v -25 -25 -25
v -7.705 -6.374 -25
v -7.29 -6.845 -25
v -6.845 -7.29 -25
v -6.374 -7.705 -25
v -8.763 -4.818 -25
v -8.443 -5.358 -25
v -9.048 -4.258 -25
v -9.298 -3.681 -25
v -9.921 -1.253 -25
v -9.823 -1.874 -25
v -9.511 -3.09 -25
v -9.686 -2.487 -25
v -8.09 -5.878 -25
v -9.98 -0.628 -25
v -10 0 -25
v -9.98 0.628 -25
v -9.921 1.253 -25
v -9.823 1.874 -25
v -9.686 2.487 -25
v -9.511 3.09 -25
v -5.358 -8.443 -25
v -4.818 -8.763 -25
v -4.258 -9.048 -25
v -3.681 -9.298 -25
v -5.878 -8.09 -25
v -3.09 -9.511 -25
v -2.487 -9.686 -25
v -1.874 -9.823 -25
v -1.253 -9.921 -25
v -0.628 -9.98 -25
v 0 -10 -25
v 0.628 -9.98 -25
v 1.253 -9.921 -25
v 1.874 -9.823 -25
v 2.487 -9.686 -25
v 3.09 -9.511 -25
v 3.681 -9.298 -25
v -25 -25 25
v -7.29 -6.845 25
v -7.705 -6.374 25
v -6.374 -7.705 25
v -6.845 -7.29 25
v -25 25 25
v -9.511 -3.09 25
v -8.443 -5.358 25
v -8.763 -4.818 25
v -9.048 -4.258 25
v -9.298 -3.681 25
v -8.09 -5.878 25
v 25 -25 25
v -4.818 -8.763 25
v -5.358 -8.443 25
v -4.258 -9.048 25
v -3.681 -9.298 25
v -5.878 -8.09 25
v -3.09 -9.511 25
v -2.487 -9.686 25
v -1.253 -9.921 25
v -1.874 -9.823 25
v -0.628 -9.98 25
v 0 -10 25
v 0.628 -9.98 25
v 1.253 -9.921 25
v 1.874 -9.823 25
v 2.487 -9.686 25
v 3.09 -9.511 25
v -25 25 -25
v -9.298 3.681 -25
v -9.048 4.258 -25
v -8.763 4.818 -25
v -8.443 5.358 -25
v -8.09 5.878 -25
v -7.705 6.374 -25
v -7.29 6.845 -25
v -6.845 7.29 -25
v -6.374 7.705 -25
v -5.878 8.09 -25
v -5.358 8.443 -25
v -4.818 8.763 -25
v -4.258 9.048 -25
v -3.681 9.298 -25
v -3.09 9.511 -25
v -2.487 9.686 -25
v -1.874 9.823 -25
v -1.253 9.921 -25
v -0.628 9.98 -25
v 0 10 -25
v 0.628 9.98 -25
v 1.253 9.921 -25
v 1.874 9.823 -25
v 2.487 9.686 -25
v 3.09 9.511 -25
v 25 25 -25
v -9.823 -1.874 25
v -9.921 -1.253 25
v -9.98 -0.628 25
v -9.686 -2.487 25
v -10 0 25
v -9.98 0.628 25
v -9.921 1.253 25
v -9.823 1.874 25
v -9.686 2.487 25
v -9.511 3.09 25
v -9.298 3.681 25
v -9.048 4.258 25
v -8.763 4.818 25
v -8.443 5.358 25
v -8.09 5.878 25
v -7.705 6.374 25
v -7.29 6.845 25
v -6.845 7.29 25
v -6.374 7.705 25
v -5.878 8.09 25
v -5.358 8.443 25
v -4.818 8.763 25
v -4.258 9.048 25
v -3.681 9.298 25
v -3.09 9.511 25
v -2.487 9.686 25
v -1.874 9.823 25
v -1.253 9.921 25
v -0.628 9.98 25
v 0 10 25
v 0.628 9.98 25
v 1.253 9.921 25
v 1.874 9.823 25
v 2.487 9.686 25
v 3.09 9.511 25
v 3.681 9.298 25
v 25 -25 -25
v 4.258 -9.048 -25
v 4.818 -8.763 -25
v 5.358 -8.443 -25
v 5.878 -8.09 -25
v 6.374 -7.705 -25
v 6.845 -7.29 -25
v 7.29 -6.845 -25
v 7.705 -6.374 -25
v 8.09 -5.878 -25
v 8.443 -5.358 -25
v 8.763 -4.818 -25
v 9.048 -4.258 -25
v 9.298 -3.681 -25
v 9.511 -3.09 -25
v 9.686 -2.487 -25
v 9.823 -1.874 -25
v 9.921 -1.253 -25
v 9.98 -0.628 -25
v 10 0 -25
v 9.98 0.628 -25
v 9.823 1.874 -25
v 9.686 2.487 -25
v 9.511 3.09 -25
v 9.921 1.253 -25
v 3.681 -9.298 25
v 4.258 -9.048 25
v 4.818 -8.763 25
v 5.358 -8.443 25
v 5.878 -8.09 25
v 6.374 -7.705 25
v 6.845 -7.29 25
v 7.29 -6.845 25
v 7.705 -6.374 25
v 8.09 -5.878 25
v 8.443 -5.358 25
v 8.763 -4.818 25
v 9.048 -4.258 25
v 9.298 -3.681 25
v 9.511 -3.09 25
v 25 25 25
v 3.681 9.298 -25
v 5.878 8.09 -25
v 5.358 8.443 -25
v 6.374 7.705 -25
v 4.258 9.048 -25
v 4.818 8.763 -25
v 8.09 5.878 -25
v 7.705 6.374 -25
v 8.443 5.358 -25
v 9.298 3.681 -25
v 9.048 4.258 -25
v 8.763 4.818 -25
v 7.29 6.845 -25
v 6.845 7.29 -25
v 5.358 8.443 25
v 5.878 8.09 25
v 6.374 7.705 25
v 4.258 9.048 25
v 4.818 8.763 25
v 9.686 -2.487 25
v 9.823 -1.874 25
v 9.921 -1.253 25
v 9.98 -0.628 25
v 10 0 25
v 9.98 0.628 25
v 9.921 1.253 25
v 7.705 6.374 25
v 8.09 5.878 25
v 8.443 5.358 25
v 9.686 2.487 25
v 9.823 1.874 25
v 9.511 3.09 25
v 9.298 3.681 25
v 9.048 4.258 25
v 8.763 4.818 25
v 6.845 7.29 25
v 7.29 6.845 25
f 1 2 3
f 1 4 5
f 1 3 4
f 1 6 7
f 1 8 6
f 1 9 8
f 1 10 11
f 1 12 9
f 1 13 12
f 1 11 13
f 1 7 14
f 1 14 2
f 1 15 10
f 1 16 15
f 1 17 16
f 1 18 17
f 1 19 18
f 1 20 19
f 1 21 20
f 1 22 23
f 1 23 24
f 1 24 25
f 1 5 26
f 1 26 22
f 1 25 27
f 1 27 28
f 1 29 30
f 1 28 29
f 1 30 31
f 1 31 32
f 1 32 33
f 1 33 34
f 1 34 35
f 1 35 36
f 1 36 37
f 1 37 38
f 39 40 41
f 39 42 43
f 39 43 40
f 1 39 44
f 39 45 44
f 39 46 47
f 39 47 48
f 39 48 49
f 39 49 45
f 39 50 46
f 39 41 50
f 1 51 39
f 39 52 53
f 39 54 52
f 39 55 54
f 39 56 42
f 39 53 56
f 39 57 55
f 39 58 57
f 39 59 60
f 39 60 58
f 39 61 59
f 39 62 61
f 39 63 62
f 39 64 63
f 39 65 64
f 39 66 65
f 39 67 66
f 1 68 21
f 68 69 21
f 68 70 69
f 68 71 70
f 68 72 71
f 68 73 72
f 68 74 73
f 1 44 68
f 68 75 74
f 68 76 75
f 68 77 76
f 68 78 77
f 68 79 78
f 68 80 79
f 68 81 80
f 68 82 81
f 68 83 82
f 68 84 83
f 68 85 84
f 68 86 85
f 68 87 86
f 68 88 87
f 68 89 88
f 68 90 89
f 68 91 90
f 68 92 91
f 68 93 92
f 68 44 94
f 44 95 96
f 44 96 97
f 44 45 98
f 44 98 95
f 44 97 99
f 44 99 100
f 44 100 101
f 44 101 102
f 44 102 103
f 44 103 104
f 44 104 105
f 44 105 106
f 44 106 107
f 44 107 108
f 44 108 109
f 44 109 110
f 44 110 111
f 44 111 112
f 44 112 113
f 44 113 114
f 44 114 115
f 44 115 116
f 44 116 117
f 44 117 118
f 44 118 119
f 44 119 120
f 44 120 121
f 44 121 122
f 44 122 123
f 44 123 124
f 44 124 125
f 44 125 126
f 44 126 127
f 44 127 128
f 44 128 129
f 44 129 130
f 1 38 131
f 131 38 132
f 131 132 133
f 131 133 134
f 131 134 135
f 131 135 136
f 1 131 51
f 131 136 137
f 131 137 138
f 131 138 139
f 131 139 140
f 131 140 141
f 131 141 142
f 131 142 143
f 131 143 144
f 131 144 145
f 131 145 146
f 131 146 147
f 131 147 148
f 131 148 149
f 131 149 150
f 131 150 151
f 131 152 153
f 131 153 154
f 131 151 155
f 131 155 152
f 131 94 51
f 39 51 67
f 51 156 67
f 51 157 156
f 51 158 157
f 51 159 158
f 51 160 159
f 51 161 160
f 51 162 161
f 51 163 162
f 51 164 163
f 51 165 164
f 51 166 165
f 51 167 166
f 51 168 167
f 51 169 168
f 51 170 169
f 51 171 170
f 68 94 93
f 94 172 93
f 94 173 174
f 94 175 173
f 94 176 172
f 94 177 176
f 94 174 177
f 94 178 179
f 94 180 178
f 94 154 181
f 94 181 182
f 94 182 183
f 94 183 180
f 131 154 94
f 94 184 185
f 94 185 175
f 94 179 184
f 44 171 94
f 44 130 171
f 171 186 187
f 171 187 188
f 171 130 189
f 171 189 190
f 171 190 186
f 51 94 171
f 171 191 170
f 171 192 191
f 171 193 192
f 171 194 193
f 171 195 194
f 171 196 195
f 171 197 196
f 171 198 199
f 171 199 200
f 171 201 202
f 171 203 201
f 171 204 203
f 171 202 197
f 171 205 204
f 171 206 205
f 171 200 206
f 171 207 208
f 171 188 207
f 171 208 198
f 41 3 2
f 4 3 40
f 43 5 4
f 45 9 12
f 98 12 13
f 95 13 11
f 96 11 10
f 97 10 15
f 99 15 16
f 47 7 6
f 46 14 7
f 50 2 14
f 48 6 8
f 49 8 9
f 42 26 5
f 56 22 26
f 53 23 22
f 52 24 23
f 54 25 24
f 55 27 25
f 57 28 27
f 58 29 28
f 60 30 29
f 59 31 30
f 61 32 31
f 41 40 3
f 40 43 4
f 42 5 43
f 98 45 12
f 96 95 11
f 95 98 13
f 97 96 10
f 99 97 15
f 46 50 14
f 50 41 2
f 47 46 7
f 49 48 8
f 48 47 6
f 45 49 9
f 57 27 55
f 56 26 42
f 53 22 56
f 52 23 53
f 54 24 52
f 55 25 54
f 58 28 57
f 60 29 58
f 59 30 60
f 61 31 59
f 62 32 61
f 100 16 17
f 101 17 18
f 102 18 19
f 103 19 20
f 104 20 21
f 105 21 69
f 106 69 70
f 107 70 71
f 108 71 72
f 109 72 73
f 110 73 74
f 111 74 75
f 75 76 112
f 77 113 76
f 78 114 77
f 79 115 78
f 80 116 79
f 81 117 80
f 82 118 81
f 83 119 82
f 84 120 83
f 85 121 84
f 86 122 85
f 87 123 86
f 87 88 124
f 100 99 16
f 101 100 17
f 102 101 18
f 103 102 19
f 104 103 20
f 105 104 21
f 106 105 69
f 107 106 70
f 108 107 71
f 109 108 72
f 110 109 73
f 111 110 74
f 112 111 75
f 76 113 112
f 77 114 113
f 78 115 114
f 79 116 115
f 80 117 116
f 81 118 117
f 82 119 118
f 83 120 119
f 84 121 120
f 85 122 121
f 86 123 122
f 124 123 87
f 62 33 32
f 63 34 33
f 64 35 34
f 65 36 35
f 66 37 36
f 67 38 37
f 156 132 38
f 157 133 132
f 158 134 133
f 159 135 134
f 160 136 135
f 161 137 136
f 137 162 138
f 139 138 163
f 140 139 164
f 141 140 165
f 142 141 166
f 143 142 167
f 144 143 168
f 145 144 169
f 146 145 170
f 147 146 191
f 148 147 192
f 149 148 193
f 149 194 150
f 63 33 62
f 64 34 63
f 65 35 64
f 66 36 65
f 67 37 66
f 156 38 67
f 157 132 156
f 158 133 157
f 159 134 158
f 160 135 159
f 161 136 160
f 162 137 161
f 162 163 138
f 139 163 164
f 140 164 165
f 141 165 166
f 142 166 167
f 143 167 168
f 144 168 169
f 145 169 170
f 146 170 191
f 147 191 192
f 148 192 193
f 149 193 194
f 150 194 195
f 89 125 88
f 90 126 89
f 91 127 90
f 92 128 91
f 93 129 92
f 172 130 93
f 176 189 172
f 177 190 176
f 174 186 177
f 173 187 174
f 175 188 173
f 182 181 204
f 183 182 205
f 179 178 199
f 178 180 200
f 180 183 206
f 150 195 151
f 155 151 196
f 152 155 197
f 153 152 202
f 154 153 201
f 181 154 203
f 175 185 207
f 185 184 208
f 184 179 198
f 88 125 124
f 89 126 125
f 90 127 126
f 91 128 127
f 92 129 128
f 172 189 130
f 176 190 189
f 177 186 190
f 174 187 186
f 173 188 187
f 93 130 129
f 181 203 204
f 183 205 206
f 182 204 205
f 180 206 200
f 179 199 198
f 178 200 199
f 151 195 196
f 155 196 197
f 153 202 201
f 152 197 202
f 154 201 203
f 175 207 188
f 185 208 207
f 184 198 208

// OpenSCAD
$fn = 100;

difference() {
    // 50mm角の立方体
    cube(50, center = true);

    // 直径20mmの貫通穴（z軸方向）
    // 抜きやすくするために高さは少し余裕を持たせています
    cylinder(h = 60, d = 20, center = true);
}
